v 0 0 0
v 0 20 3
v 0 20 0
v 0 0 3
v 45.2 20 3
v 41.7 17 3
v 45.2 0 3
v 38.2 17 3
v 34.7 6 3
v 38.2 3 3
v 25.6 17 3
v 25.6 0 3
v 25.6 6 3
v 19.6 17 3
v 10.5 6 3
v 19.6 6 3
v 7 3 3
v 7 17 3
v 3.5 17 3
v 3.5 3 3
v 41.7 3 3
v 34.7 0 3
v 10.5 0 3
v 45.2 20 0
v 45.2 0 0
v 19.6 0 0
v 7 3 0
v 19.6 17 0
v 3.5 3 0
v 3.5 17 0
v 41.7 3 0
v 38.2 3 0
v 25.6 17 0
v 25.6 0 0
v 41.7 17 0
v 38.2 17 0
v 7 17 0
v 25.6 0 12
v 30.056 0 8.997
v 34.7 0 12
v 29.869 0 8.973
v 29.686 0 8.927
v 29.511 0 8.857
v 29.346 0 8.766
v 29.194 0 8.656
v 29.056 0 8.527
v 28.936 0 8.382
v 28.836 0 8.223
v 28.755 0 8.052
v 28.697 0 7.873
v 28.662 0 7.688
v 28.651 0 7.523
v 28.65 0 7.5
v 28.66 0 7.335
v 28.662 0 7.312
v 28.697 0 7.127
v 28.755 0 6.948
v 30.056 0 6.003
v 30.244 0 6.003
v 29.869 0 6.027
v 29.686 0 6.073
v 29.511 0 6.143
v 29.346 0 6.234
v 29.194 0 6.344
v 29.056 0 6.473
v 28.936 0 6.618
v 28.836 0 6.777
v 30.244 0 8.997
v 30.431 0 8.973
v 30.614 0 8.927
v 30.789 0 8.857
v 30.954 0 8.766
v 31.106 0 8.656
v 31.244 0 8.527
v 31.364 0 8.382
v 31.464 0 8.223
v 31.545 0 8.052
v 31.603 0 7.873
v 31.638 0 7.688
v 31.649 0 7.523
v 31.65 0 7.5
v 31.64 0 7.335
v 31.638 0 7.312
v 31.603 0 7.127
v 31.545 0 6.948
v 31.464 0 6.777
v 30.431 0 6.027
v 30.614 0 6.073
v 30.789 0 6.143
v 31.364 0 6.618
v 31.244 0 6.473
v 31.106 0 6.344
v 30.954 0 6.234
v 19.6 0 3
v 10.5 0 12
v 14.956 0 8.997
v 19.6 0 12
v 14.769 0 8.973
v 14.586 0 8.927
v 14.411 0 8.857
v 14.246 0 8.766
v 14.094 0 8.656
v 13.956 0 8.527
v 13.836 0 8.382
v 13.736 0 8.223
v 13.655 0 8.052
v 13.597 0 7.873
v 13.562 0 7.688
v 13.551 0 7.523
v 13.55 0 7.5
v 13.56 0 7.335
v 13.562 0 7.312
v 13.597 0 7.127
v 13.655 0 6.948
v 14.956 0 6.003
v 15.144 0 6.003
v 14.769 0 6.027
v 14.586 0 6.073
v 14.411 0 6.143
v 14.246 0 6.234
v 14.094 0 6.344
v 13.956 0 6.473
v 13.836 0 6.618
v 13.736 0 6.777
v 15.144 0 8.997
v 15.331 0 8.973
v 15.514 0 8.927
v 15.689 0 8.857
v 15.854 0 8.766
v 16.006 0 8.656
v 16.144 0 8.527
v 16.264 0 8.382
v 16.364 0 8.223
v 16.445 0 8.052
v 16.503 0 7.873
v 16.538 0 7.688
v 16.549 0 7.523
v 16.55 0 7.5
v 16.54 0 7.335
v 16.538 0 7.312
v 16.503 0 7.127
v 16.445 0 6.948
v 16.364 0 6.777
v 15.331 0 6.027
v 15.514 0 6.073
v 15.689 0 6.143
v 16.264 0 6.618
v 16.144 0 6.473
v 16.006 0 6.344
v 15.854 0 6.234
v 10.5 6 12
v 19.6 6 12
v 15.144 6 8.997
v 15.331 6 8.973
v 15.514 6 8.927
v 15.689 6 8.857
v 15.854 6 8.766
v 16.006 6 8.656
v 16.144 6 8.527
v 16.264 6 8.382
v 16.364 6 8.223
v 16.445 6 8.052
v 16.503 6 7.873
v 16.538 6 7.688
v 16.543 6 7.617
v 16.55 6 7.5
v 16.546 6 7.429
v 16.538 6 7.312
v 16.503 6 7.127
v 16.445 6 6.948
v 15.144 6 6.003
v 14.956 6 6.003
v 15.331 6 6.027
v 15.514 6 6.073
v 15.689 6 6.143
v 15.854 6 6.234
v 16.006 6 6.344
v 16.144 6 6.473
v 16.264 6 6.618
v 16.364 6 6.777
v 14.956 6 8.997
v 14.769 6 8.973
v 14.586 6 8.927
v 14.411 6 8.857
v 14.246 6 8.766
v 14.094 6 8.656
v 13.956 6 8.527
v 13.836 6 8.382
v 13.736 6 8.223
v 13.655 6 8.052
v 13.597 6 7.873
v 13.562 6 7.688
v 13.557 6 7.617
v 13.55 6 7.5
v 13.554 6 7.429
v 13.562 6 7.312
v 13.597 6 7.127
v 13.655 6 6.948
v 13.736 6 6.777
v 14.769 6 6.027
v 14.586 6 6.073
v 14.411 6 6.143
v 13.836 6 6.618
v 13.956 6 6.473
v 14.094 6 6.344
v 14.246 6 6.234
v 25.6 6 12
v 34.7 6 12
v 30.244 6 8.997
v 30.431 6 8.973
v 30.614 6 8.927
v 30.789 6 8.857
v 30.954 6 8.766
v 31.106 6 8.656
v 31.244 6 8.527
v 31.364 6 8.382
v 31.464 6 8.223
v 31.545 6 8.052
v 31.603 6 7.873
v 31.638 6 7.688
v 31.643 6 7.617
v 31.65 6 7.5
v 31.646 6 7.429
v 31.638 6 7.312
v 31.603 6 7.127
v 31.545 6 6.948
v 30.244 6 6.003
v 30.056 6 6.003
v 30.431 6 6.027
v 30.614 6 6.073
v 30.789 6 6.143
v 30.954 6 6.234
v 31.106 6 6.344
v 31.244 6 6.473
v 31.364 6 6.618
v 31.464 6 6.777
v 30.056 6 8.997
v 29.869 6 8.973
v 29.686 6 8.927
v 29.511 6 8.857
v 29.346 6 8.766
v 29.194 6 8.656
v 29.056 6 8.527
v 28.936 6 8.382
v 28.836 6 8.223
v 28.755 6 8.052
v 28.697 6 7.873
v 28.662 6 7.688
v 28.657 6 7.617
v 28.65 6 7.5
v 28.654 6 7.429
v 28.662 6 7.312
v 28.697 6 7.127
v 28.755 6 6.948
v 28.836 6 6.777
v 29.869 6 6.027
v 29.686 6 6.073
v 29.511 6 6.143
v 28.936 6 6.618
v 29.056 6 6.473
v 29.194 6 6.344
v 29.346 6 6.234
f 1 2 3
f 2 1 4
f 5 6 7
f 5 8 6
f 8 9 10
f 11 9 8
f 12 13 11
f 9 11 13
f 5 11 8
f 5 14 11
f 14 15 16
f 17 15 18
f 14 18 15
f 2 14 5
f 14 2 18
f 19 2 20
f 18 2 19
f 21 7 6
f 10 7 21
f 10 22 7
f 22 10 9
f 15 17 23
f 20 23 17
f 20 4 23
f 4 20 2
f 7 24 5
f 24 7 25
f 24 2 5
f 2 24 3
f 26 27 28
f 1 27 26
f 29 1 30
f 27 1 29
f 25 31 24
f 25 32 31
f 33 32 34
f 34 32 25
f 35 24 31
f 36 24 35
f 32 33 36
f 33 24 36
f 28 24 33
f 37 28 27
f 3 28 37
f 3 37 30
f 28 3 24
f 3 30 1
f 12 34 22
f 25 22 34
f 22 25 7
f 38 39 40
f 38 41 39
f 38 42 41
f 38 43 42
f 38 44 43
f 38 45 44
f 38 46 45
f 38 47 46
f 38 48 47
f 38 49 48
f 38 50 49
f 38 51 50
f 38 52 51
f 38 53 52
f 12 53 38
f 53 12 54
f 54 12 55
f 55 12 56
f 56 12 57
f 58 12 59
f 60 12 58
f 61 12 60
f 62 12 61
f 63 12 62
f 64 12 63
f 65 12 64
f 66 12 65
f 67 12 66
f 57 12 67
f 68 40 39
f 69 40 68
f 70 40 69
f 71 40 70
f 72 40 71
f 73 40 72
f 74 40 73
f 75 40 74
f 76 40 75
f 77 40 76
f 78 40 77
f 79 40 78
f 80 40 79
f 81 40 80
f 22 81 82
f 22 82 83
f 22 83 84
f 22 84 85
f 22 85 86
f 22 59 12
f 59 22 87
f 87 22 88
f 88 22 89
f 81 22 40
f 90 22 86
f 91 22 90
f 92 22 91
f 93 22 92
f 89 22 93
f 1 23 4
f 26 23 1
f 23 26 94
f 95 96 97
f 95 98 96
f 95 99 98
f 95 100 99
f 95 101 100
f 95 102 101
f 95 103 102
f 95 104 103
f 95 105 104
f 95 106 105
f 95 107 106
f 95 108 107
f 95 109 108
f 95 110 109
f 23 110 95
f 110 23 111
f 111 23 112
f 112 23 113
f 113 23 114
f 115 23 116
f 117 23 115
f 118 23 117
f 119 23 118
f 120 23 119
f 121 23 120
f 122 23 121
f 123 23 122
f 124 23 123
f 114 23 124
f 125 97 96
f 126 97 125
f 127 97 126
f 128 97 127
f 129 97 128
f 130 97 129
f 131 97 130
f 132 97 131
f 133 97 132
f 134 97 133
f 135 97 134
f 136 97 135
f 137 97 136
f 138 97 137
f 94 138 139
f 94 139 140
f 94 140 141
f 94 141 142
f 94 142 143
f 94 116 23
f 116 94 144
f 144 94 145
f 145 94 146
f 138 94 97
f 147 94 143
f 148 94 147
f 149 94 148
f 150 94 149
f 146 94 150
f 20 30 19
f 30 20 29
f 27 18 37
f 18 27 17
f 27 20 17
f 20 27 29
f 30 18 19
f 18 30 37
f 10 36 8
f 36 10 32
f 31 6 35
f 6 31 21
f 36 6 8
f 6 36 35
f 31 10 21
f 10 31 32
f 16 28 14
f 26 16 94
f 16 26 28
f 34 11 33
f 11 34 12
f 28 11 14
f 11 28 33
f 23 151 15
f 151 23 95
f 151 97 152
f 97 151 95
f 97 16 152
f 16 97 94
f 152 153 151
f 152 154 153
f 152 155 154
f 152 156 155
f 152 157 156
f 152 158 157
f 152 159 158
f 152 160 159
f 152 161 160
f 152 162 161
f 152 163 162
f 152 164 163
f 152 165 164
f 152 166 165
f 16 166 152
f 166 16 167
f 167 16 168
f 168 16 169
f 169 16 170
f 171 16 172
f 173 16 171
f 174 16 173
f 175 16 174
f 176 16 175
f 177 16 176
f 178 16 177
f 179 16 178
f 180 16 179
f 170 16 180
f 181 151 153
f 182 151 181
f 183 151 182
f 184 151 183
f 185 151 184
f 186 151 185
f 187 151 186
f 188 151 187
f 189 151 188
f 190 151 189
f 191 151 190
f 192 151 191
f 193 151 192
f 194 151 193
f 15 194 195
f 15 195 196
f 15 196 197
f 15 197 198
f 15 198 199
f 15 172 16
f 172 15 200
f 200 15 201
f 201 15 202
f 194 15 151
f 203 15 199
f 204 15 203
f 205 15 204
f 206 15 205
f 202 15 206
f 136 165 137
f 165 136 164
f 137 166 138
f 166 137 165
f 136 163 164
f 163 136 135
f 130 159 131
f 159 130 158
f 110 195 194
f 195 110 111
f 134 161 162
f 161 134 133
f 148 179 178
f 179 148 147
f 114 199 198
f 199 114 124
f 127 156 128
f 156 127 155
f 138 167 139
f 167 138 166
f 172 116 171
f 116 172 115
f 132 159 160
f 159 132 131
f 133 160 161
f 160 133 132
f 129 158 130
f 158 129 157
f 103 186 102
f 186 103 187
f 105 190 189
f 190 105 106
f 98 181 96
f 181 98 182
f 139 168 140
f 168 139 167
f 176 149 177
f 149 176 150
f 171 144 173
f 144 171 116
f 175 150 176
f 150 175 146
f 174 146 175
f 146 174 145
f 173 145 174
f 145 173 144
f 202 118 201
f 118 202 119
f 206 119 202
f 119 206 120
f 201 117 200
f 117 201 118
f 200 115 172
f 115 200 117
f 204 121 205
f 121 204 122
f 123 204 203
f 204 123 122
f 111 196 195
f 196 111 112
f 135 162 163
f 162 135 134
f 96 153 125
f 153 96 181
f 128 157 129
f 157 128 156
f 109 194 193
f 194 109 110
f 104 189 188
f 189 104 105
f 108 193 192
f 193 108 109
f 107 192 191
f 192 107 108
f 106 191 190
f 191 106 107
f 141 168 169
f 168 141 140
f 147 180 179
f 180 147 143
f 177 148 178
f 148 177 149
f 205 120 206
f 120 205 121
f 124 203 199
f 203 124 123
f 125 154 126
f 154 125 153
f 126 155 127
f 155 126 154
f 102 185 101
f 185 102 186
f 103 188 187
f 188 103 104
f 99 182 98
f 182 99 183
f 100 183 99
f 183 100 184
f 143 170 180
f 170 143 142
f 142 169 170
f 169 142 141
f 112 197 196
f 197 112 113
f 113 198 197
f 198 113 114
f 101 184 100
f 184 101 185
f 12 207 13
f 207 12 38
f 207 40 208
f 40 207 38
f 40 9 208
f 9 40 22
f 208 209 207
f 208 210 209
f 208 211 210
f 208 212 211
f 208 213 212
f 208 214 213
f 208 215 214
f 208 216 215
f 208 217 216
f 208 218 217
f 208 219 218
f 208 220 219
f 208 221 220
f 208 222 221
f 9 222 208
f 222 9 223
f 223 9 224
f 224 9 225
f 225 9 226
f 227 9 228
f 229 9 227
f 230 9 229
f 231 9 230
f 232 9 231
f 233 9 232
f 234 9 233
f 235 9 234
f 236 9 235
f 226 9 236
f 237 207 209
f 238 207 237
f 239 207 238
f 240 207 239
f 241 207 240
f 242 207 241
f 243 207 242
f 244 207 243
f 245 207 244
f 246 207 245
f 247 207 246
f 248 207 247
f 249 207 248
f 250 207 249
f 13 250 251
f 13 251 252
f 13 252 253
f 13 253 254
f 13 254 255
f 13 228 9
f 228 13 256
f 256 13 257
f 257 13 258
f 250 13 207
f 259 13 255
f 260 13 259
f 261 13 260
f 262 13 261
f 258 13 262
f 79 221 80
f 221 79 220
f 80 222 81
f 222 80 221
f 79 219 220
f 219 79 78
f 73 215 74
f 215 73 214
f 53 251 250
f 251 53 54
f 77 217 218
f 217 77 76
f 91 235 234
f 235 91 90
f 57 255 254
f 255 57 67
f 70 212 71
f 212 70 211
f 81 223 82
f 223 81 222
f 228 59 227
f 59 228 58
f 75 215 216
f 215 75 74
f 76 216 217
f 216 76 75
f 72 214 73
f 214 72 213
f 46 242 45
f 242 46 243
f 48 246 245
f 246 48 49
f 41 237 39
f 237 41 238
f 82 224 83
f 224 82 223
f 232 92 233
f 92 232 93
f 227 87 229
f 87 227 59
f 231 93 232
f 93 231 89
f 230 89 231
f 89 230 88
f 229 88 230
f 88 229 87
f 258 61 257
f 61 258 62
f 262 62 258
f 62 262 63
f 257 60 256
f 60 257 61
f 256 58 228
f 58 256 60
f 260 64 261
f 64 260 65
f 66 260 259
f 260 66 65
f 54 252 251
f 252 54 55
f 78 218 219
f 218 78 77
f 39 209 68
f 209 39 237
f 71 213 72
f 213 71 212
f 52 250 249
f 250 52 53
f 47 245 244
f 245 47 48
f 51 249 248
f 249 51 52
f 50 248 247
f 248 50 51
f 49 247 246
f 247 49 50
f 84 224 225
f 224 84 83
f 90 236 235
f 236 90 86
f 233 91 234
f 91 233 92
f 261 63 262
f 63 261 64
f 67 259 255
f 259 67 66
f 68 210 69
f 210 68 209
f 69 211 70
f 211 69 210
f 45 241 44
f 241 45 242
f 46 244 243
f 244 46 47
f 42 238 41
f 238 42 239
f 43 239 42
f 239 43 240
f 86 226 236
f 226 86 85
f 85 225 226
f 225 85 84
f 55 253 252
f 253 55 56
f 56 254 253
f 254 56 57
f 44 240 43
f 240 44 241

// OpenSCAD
$fn=50;
width = 40;
depth = 20; 
height = 3;
slotsize = 3.5;
fixheight = 20;
margin = 3;
nutslot_width = 5.6;
sensor_board_width = 22;
sensor_board_height = 11+5.2; 
total_width = sensor_board_width + 4*margin + 2*nutslot_width;
magnet_diameter = 6;
mountBarWidth = 0.5*total_width-0.5*magnet_diameter-3*slotsize;
nutsize = 3;

difference() {
    // Adjustable mounting slots for vertical plate
    slottedPlate(total_width, depth, height, slotsize);
    // Slot which allows alignment nut to pass through
    translate([0.5*total_width-0.5*magnet_diameter,0,0]) {
        cube([magnet_diameter,fixheight-margin, height]);
    }
}

// Support mounting bars to mount the vertical plate to the base
// This way the plate can be removed after the separete vertical plate
// has been aligned properly to make it easy to attach the sensor to the seperate mounting plate
translate([3*slotsize,0,height]) {
    mountBar();
}
translate([total_width*0.5+0.5*magnet_diameter,0,height]) {
    mountBar();
}

module mountBar() {
    difference() {
        cube([mountBarWidth,2*margin,height*3]);
        translate([0.5*mountBarWidth,0.5*mountBarWidth,height*1.5]) {
            rotate([90,0,0]) {
                cylinder(h=4*height,d=nutsize, center=true);
            }
        }
    }  
}

module slottedPlate(plateWidth, plateDepth, plateHeight, slotWidth) {
    difference() {
        cube([plateWidth,plateDepth,plateHeight]);
        translate([slotWidth, plateHeight, 0]) {
            cube([slotWidth,plateDepth-2*plateHeight,plateHeight+1]);
        }
        translate([plateWidth - 2*slotWidth, plateHeight,0]) {
            cube([slotWidth,plateDepth-2*plateHeight,plateHeight+1]);
        }
    }
}

module nutslot() {
	translate([(0.5 * nutslot_width) - (0.5 * slotsize), 0, 0]) {
		cube([slotsize, 0.5*slotsize, fixheight - slotsize]);
	}
	translate([0, 0.5*slotsize, 0]) {
		cube([nutslot_width, 0.5*slotsize, fixheight - slotsize]);
	}
}
